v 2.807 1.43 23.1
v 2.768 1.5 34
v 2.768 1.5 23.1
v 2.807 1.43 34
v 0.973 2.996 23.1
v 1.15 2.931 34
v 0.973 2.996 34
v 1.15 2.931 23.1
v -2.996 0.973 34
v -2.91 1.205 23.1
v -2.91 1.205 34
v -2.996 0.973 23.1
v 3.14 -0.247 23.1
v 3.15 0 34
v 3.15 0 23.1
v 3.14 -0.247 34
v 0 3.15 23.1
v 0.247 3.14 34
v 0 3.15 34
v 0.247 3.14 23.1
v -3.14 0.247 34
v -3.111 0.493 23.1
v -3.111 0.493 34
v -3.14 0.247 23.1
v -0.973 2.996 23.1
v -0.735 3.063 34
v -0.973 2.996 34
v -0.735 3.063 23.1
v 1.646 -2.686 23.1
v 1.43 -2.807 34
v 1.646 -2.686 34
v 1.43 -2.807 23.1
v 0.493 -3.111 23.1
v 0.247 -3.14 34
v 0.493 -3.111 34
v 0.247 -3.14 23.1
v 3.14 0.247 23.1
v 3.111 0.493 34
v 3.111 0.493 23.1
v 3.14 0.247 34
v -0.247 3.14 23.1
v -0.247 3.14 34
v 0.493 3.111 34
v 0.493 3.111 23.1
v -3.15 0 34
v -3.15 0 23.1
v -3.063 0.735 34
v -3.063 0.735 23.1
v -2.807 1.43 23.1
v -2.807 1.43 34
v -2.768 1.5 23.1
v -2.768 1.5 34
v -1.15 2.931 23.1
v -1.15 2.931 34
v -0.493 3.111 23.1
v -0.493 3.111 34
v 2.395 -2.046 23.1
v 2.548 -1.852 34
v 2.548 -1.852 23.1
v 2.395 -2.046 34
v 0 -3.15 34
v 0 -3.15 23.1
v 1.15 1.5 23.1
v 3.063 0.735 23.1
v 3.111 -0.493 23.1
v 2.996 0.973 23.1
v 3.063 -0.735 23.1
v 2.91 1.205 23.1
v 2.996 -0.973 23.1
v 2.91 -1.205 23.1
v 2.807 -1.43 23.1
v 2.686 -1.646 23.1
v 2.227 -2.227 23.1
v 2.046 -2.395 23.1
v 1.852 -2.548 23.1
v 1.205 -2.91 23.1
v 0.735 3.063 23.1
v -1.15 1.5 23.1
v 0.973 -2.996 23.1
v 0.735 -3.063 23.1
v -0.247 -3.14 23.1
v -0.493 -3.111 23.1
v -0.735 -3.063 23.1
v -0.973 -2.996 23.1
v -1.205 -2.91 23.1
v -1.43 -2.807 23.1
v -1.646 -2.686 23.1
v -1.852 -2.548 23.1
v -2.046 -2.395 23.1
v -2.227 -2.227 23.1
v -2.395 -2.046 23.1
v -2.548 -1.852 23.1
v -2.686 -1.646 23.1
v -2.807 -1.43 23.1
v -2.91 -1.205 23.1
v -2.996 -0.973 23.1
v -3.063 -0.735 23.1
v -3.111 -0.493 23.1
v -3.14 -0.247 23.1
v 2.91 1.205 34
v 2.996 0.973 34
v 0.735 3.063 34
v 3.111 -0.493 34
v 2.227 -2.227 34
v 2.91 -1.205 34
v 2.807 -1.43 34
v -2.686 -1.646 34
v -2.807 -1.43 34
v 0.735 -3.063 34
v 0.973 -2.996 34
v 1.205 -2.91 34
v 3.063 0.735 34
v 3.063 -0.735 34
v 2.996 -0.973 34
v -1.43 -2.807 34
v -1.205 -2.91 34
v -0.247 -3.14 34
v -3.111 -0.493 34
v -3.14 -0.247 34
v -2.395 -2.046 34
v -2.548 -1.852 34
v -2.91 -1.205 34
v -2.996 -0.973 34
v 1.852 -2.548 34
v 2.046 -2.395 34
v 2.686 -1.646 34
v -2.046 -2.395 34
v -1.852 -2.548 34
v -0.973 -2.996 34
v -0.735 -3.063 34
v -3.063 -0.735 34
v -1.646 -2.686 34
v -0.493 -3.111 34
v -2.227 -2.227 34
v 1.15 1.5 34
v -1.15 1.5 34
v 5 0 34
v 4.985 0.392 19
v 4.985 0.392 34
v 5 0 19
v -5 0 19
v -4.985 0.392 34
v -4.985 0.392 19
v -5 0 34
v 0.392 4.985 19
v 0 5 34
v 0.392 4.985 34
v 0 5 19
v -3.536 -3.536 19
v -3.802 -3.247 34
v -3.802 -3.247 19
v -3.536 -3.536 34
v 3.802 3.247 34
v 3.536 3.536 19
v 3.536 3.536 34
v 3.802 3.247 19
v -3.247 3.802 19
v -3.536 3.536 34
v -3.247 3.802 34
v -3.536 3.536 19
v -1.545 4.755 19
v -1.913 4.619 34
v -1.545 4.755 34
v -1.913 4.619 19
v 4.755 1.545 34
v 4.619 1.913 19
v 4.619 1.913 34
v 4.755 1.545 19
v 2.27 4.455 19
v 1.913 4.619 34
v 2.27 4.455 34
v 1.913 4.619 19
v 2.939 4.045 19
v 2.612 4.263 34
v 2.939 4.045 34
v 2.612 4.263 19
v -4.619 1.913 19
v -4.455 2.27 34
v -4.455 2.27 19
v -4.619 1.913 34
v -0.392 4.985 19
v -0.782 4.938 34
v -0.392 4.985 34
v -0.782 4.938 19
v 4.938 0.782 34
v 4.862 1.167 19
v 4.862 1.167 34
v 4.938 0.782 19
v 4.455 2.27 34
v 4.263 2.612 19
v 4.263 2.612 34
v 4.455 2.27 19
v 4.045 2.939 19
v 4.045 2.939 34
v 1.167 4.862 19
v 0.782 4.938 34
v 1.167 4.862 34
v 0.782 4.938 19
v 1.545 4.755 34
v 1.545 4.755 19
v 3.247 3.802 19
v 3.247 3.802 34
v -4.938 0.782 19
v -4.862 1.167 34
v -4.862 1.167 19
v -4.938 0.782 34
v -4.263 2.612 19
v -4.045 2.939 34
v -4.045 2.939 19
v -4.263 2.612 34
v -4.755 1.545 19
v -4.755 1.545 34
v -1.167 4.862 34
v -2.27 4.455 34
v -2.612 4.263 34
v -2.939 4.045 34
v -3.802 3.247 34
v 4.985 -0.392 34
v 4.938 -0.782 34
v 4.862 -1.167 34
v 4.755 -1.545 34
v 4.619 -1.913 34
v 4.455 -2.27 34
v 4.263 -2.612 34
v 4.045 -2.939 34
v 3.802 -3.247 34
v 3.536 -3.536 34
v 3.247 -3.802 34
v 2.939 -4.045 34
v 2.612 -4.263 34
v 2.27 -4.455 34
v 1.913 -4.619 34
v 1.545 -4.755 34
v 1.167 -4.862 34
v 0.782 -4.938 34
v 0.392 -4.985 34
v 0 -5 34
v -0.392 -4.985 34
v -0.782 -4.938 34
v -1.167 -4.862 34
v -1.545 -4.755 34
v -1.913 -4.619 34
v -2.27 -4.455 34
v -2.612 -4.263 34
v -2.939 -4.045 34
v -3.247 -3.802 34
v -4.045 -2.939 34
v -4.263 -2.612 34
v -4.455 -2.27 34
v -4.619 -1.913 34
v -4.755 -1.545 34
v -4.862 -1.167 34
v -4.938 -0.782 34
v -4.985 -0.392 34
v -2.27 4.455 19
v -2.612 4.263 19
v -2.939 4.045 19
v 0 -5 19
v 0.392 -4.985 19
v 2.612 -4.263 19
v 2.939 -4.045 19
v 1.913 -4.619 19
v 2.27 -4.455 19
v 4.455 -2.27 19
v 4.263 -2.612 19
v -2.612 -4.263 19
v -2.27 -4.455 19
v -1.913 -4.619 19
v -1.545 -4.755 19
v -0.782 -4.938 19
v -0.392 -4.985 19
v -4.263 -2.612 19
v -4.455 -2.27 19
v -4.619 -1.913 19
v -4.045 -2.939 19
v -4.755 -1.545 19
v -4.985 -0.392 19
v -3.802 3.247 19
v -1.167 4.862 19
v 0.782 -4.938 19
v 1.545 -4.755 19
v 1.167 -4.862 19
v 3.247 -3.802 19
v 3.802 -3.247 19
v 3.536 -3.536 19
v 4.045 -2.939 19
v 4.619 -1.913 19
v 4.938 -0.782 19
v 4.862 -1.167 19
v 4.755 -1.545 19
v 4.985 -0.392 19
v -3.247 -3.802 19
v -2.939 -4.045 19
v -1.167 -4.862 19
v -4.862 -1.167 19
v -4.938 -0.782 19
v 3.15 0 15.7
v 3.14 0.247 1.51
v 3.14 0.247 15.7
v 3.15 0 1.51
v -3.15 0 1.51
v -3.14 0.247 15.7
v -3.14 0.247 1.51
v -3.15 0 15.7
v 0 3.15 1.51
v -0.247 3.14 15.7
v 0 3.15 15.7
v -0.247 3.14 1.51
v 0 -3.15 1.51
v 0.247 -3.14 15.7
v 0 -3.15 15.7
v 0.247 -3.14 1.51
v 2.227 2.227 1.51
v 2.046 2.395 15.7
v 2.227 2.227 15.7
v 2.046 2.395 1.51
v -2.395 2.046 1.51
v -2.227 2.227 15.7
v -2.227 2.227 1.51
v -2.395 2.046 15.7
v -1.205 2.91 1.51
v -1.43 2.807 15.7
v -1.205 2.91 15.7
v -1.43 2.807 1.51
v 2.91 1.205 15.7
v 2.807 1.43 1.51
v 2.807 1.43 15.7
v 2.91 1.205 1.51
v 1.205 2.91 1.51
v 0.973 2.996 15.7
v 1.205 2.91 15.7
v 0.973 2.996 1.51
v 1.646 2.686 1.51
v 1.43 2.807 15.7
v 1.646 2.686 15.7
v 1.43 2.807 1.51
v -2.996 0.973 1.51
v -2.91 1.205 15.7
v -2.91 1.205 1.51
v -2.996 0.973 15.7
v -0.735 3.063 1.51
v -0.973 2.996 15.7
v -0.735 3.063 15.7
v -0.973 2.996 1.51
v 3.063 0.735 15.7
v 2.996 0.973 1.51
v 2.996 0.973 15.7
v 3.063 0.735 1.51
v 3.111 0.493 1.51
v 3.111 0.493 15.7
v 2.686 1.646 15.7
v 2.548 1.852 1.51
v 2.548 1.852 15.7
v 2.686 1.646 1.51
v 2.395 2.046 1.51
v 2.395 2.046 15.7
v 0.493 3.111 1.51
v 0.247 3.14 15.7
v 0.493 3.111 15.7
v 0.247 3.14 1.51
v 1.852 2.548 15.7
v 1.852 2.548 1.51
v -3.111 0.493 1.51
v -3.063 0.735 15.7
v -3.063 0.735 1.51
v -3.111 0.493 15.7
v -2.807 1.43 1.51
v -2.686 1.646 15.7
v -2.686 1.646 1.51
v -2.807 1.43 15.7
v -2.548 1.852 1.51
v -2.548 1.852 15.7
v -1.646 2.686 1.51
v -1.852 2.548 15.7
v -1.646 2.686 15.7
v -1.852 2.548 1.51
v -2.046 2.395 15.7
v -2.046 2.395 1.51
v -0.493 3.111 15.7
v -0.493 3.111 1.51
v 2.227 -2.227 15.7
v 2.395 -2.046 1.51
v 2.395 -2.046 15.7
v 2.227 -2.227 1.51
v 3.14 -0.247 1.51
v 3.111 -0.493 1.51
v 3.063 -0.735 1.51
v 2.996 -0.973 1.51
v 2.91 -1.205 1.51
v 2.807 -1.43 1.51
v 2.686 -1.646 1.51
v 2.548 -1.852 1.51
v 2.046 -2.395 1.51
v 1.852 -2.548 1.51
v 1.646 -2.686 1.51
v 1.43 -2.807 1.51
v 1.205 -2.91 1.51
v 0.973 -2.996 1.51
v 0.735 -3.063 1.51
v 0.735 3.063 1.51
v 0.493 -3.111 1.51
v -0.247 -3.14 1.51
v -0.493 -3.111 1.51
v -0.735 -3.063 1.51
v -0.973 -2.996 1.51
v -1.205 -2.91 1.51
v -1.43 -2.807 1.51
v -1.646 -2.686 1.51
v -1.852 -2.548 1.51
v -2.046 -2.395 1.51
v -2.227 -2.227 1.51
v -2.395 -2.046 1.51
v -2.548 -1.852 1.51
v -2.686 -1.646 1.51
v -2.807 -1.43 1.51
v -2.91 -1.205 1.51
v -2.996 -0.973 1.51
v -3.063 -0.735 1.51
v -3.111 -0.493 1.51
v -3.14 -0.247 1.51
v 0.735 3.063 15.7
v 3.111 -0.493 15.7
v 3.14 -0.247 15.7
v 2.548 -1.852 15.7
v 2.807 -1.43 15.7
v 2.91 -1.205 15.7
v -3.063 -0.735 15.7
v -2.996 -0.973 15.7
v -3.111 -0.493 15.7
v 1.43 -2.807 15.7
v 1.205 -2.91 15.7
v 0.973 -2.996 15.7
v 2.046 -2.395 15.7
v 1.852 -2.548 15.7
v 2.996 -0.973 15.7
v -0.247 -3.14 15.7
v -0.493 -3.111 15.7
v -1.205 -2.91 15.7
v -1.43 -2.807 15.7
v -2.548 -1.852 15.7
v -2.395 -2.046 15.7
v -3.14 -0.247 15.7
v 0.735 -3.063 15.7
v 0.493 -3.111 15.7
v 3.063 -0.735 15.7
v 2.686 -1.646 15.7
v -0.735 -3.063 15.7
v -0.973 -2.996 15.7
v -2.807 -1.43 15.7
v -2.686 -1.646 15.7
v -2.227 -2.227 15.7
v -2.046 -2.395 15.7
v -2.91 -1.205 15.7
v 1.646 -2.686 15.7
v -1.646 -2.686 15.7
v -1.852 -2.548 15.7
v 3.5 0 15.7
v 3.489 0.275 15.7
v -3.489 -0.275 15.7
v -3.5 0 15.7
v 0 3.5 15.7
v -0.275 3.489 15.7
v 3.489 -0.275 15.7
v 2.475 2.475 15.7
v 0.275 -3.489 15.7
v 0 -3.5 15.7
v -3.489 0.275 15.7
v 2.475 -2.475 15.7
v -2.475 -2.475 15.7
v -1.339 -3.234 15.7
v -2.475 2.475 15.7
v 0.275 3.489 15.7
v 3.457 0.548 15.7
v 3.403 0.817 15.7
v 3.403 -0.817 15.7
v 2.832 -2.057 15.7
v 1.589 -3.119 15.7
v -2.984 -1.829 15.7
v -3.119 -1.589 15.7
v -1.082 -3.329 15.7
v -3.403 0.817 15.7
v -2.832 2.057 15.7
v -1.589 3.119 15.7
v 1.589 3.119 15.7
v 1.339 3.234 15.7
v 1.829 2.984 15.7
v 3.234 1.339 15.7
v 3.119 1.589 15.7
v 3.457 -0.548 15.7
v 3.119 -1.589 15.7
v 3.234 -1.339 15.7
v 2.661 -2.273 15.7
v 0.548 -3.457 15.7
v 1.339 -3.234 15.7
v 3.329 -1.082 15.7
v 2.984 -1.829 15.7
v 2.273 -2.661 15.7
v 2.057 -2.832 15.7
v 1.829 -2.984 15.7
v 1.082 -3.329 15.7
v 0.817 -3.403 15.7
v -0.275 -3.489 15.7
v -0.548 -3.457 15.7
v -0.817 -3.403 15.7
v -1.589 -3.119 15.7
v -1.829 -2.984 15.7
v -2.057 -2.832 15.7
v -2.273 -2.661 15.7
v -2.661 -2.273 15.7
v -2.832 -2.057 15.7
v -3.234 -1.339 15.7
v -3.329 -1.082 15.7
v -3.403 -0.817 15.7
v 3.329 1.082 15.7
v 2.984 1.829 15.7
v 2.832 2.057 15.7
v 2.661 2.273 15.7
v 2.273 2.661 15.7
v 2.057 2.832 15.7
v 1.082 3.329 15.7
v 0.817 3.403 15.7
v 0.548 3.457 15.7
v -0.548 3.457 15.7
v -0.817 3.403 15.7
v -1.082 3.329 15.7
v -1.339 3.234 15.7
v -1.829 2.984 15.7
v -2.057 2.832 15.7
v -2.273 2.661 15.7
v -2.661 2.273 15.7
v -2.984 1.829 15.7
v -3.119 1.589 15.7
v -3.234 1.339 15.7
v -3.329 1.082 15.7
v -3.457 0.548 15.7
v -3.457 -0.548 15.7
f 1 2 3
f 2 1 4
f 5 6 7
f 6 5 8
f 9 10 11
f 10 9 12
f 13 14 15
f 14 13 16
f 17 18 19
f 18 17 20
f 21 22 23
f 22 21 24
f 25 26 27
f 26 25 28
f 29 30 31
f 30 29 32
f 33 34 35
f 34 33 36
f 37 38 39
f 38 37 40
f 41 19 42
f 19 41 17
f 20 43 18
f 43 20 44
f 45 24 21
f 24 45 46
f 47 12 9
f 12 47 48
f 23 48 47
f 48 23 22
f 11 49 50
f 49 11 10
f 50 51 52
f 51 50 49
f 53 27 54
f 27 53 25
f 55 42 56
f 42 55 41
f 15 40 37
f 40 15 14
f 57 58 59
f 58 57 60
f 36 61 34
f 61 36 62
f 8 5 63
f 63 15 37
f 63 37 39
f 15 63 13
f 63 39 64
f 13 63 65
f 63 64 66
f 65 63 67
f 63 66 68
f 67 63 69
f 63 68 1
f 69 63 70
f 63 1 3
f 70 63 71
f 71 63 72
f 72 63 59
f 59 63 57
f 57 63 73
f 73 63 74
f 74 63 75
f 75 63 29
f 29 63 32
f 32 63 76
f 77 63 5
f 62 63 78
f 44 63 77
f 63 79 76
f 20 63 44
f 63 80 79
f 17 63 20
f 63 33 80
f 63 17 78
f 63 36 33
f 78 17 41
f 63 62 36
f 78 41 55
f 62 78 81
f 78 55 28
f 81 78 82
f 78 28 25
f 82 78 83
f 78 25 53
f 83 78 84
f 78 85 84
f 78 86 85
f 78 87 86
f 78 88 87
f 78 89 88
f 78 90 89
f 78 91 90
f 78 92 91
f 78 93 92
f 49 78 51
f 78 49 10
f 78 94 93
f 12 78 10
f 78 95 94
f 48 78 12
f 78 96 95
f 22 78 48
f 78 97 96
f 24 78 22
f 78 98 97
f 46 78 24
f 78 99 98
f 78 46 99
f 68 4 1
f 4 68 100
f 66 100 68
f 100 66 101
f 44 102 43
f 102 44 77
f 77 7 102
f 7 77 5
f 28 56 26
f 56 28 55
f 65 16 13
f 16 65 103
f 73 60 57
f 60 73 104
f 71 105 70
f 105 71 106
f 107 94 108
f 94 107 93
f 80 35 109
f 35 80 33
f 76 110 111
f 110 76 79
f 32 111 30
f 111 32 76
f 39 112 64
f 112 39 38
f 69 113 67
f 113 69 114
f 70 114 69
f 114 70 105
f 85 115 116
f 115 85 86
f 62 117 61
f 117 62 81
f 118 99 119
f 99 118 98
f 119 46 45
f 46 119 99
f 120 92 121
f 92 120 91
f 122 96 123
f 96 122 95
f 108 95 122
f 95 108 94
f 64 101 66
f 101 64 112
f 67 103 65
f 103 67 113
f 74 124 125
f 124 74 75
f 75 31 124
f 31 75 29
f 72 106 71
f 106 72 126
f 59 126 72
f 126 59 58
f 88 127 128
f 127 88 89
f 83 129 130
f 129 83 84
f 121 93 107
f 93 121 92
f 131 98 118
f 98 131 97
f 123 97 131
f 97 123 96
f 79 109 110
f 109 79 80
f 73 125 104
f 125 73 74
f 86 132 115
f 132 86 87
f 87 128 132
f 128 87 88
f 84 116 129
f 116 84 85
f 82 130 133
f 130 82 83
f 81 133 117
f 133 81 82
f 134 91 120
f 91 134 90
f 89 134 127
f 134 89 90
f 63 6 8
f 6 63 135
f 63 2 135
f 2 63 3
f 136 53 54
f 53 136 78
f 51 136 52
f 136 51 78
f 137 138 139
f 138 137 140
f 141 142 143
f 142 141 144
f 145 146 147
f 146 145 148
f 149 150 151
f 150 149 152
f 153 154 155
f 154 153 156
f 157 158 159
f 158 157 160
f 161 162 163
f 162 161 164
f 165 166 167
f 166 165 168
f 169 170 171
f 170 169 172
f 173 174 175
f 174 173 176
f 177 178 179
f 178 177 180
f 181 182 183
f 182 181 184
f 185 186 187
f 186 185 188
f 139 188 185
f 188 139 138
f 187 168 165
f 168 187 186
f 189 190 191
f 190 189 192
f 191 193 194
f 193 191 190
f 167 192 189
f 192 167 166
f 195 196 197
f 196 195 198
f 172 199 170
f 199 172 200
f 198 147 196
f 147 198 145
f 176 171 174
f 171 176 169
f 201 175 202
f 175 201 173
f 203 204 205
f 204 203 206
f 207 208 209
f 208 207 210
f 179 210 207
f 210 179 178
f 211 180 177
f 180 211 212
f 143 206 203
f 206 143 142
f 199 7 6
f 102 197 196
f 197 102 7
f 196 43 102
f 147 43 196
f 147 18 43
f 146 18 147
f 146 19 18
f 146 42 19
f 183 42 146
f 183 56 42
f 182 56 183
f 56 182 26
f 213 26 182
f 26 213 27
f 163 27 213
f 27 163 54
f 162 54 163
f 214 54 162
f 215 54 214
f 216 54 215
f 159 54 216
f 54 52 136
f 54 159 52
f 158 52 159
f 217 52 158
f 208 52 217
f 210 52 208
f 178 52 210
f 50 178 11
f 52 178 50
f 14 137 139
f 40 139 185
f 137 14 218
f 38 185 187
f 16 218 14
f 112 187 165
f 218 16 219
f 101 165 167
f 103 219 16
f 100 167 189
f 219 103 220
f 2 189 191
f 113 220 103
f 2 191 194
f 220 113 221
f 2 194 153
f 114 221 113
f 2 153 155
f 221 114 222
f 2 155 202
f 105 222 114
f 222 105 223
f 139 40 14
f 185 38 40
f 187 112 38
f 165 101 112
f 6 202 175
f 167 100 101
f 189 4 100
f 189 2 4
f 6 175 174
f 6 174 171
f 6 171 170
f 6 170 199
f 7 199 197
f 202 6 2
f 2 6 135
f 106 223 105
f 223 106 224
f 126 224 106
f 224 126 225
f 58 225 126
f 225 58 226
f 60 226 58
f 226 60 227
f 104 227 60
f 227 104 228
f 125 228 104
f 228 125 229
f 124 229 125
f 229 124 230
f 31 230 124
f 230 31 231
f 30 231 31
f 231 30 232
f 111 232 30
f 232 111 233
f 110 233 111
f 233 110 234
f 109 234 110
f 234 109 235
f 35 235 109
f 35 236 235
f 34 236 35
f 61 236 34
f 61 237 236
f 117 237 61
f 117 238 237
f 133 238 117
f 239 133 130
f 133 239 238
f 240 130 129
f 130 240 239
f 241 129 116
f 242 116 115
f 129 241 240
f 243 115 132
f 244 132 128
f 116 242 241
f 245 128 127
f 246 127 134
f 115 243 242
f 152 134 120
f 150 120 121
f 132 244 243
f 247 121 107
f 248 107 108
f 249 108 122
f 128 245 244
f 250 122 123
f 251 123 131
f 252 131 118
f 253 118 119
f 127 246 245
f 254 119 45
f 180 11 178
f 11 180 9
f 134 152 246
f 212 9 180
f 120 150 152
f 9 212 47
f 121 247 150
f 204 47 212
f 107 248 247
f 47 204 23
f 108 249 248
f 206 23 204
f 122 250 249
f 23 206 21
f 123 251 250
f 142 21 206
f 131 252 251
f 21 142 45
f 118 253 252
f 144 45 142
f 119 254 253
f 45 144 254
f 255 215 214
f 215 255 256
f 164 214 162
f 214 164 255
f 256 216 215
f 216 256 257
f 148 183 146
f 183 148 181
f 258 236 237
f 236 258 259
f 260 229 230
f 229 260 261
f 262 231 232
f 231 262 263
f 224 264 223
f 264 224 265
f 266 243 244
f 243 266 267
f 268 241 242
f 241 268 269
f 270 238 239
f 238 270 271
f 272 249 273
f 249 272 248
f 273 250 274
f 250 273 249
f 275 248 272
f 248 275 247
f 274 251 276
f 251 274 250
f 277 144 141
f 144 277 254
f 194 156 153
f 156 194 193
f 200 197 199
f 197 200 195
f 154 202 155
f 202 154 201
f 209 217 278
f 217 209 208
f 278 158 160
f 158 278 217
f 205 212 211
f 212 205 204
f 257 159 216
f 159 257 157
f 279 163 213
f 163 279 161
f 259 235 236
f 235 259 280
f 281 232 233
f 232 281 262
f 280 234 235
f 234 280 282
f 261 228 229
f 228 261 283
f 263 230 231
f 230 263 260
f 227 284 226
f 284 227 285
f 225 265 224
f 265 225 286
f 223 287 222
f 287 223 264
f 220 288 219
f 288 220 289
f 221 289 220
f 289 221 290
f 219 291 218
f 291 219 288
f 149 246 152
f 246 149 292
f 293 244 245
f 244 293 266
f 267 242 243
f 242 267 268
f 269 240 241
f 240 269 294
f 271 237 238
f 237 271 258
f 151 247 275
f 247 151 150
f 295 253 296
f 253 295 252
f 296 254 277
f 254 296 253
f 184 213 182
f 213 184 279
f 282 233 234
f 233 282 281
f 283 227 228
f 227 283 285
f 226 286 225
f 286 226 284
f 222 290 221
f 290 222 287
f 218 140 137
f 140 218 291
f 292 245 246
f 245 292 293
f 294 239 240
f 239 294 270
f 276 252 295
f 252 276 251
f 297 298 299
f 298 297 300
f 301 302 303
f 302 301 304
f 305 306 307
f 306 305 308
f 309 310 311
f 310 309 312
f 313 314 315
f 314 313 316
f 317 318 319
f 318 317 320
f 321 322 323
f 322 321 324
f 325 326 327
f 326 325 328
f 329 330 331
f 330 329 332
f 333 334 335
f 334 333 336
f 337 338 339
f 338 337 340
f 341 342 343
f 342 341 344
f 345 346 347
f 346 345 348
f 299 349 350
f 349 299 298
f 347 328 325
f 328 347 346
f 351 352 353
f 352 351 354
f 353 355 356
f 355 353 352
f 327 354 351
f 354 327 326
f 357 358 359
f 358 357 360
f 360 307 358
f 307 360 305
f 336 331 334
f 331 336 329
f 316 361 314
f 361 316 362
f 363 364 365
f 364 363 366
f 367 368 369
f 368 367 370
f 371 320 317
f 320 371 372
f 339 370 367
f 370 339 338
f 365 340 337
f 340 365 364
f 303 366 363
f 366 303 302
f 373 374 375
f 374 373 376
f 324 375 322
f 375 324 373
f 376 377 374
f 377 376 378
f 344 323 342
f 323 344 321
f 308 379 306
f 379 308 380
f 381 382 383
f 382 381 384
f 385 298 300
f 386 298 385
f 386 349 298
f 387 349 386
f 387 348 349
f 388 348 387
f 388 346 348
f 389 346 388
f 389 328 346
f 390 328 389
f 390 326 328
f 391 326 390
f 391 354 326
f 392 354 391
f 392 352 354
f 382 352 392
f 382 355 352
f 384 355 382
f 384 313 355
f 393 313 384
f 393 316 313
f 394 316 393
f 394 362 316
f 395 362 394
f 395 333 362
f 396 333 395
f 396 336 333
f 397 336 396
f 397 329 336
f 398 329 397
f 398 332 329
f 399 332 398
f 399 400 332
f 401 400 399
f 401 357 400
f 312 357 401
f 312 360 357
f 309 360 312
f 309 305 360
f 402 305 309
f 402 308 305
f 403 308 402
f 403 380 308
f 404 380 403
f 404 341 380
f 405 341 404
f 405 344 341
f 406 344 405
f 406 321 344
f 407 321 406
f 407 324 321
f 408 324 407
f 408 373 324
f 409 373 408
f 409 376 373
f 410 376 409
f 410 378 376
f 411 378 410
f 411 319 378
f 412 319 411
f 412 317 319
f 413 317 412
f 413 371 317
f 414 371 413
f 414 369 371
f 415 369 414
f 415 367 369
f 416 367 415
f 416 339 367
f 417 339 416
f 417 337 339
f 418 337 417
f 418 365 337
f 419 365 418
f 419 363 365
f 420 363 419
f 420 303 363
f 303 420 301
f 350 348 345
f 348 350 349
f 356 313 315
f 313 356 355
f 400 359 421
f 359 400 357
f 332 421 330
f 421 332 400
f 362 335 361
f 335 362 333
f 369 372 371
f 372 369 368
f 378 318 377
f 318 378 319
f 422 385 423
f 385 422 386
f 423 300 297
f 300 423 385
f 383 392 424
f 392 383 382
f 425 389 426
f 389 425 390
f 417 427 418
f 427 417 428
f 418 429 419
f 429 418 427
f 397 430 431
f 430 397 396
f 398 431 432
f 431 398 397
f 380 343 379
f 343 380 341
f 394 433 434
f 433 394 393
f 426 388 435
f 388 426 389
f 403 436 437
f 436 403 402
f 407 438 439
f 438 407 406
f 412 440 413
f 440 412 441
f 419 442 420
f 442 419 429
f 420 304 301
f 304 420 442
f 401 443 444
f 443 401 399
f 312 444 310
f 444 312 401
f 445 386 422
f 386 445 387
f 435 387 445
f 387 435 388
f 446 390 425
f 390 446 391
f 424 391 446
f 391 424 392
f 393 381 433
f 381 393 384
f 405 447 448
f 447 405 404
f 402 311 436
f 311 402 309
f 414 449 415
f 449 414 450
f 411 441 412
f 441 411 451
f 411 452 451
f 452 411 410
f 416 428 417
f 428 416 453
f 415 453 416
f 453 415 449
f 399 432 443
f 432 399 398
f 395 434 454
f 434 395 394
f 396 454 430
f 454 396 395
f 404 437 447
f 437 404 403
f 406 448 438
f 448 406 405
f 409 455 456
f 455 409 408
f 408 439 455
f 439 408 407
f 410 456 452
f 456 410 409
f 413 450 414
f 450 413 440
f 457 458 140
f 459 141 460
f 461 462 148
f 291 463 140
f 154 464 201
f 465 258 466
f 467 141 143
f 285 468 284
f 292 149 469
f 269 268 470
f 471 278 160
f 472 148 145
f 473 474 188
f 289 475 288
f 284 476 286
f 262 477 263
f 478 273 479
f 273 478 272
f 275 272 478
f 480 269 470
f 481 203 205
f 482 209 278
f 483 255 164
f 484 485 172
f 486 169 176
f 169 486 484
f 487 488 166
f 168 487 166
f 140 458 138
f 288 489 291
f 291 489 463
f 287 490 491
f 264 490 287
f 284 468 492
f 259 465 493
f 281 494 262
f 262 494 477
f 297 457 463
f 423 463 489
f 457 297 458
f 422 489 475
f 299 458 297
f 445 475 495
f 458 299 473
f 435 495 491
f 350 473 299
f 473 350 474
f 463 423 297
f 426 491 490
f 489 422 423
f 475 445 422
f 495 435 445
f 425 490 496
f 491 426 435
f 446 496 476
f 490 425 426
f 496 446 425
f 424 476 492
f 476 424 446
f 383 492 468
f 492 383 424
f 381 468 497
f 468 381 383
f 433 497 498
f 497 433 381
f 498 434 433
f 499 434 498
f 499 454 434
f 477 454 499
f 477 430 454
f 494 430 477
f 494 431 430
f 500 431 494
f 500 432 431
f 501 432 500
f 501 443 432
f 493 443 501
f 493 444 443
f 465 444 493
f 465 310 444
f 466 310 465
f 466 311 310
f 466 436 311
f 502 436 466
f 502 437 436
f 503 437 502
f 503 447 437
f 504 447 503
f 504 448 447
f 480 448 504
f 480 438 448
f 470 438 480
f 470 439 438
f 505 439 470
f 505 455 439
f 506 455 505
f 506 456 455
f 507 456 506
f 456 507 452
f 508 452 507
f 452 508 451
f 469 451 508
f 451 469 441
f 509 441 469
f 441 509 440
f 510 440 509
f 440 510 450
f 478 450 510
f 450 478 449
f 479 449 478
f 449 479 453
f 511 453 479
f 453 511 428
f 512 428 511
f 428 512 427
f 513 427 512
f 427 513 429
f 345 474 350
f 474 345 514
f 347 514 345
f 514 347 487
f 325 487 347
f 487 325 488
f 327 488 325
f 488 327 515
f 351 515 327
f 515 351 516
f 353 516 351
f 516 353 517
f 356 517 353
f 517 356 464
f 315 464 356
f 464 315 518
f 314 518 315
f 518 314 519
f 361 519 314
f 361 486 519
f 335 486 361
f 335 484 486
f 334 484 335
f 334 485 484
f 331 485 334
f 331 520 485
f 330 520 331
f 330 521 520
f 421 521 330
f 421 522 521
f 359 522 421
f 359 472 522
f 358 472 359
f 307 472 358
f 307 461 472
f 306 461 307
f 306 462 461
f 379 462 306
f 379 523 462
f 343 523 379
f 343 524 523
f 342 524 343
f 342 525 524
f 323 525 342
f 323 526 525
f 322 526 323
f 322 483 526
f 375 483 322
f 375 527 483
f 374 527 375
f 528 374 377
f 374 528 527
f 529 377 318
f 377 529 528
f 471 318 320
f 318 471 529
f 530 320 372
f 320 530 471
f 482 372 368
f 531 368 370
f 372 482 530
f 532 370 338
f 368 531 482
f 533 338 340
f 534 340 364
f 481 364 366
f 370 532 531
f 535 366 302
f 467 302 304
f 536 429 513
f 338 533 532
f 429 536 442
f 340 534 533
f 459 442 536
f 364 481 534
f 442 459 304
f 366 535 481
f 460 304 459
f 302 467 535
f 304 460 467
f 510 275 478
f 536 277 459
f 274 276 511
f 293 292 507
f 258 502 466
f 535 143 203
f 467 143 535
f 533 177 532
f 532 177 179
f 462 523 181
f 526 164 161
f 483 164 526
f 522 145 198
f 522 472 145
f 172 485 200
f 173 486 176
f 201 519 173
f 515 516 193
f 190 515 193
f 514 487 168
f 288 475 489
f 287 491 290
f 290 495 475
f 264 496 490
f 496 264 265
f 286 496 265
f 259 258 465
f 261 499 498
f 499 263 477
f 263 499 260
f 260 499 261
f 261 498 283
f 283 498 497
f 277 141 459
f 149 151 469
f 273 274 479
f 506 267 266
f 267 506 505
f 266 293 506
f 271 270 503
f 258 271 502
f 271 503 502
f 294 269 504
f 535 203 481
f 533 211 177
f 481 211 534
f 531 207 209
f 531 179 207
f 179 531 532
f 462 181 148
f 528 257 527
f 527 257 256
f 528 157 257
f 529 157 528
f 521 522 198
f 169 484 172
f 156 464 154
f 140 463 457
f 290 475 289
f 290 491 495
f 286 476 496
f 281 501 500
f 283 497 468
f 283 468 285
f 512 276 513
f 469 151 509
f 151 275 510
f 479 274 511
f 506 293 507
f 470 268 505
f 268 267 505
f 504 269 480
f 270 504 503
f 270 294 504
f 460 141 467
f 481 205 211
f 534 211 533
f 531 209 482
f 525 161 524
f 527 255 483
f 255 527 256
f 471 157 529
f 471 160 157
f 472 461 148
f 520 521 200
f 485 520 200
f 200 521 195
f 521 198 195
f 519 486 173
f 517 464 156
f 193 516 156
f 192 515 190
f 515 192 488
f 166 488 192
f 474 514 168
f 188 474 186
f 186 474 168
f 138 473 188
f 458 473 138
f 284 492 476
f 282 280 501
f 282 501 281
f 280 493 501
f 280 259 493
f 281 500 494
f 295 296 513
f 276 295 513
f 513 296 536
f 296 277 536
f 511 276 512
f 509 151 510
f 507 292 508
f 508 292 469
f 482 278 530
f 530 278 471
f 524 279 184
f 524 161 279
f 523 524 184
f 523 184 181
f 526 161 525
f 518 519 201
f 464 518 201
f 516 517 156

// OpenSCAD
$fn = 80;
translate([0,0,1.51])
cylinder(h=14.2,d=6.3);
translate([0,0,15.7])
cylinder(h=3.3, d1=7, d2=10);
difference() {
// keyhole cutout outer dimension
translate([0,0,19])
cylinder(h=15, d=10);    

// center cutout
translate([0,0,23.1])
difference() {
cylinder(h=11, d=6.3);

translate([1.15,1.5,0])
    cube([4,4,11.1]);
    
translate([-5.15,1.5,0])
    cube([4,4,11.1]);
}

}
